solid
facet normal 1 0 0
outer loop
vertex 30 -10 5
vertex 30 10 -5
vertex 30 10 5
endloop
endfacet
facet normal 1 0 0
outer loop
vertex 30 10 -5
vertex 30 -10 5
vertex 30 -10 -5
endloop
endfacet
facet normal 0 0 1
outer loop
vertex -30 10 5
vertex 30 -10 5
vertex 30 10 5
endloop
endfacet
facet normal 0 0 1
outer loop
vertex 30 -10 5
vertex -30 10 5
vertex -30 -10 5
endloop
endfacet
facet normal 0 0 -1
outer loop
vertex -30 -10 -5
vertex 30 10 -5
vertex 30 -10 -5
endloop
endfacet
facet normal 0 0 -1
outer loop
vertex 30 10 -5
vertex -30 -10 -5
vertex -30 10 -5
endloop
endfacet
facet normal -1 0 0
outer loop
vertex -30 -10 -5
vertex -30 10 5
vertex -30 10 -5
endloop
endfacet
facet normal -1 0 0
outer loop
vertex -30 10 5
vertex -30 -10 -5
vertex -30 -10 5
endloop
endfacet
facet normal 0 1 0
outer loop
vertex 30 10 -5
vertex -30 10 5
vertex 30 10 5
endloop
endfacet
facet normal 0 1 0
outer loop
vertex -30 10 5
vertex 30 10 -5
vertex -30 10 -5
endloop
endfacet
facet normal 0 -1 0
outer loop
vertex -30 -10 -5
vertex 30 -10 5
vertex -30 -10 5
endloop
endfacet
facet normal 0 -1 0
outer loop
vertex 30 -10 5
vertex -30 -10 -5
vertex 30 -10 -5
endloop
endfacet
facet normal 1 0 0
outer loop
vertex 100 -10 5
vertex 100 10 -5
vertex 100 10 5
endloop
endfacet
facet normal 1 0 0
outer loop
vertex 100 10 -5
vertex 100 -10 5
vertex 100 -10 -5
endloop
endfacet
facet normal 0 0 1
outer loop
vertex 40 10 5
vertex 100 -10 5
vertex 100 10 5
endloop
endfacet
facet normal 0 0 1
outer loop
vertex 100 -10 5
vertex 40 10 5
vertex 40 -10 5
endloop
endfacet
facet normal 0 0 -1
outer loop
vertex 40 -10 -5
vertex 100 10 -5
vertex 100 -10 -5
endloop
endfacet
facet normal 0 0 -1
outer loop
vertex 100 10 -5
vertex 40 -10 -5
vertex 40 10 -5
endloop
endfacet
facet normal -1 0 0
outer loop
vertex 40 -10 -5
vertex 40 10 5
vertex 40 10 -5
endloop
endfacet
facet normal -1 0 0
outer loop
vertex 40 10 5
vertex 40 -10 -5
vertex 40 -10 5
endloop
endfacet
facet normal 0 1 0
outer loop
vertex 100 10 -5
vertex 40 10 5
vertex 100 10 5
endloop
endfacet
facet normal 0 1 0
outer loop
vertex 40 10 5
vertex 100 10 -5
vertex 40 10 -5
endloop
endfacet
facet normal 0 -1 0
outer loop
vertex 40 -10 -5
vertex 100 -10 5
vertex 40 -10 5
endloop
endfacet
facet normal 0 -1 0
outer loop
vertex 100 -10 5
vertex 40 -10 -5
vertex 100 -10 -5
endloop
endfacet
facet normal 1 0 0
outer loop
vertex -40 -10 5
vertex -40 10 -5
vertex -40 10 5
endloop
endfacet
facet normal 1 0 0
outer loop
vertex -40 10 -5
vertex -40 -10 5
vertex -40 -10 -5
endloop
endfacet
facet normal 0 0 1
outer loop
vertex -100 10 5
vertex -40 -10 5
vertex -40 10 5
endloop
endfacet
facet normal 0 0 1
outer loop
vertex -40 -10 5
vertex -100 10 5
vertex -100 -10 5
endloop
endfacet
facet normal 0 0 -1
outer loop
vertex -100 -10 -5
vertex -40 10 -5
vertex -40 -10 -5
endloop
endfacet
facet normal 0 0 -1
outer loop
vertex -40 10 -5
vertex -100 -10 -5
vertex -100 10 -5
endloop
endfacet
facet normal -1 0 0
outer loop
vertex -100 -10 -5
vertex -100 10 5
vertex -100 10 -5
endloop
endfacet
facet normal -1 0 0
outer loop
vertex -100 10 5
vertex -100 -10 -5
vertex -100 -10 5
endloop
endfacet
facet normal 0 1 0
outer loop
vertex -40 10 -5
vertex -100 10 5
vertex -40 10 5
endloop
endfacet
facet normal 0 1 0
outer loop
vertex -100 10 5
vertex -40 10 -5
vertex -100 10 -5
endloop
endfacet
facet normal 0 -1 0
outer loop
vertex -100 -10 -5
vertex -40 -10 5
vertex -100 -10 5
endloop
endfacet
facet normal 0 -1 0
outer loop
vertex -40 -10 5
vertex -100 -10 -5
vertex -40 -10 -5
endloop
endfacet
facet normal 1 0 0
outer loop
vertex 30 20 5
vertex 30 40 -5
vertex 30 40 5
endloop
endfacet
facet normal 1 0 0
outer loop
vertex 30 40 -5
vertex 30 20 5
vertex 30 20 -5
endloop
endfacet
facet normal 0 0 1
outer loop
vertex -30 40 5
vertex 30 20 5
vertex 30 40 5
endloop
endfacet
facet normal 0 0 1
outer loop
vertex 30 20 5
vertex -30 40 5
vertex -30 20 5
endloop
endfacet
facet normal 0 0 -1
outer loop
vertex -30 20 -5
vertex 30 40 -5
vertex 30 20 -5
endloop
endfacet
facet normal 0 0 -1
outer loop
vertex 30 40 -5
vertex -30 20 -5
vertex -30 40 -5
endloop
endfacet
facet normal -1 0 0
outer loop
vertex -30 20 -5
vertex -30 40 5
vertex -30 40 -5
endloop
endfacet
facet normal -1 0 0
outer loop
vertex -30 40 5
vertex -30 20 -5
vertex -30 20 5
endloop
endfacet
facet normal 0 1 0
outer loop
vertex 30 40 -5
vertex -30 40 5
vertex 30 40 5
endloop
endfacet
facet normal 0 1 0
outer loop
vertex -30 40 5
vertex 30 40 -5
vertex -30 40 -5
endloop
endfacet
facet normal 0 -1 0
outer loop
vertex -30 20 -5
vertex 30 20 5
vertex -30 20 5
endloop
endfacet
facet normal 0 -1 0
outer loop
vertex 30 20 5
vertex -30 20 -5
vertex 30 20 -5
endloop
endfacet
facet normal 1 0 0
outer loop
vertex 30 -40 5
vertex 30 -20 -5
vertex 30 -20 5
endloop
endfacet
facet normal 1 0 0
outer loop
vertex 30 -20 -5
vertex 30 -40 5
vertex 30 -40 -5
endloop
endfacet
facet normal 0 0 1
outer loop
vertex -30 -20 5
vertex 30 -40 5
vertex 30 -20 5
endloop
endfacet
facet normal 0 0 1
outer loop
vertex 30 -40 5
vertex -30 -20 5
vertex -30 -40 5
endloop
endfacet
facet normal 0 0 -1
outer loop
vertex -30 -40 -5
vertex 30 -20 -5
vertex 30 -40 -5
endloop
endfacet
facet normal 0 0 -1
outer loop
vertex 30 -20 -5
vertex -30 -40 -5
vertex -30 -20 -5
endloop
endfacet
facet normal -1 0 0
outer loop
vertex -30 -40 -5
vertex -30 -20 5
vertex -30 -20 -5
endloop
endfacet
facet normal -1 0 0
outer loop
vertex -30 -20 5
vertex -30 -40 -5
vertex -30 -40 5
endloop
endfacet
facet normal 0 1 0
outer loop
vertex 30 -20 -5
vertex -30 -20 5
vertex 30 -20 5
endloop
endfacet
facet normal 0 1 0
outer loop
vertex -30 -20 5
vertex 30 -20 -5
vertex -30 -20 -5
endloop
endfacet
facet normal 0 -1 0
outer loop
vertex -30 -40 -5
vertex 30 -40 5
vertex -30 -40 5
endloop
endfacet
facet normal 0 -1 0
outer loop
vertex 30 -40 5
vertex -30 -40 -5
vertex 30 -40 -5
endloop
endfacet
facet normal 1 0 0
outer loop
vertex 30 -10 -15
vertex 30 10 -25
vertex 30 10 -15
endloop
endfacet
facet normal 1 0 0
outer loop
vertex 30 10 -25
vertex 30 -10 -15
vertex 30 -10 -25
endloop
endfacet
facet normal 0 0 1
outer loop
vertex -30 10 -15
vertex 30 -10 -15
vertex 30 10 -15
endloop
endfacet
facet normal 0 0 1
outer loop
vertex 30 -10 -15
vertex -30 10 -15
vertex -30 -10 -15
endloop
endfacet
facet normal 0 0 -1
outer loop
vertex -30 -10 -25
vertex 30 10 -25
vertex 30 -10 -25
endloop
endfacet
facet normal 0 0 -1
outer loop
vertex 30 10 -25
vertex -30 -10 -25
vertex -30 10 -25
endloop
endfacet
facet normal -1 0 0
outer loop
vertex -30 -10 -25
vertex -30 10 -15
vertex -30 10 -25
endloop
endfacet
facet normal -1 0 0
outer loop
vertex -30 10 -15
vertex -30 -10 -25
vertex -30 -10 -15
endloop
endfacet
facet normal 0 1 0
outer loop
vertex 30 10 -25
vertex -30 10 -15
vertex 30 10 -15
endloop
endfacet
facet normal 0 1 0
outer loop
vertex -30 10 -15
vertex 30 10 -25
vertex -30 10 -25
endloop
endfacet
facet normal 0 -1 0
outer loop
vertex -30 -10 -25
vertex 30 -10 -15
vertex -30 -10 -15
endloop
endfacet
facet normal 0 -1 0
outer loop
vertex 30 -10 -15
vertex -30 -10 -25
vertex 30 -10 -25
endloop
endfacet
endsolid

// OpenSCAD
// Define dimensions for the rectangular blocks
block_length = 60;  // Length of the block
block_width = 20;   // Width of the block
block_height = 10;  // Height of the block

// Function to create a rectangular block
module rectangular_block() {
    cube([block_length, block_width, block_height], center = true);
}

// Generate individual blocks based on the original model configuration
// Adjusted to match the original model's horizontal layout and spacing
translate([0, 0, 0]) rectangular_block(); // Block 1
translate([block_length + 10, 0, 0]) rectangular_block(); // Block 2
translate([-(block_length + 10), 0, 0]) rectangular_block(); // Block 3
translate([0, block_width + 10, 0]) rectangular_block(); // Block 4
translate([0, -(block_width + 10), 0]) rectangular_block(); // Block 5
translate([0, 0, -(block_height + 10)]) rectangular_block(); // Block 6
